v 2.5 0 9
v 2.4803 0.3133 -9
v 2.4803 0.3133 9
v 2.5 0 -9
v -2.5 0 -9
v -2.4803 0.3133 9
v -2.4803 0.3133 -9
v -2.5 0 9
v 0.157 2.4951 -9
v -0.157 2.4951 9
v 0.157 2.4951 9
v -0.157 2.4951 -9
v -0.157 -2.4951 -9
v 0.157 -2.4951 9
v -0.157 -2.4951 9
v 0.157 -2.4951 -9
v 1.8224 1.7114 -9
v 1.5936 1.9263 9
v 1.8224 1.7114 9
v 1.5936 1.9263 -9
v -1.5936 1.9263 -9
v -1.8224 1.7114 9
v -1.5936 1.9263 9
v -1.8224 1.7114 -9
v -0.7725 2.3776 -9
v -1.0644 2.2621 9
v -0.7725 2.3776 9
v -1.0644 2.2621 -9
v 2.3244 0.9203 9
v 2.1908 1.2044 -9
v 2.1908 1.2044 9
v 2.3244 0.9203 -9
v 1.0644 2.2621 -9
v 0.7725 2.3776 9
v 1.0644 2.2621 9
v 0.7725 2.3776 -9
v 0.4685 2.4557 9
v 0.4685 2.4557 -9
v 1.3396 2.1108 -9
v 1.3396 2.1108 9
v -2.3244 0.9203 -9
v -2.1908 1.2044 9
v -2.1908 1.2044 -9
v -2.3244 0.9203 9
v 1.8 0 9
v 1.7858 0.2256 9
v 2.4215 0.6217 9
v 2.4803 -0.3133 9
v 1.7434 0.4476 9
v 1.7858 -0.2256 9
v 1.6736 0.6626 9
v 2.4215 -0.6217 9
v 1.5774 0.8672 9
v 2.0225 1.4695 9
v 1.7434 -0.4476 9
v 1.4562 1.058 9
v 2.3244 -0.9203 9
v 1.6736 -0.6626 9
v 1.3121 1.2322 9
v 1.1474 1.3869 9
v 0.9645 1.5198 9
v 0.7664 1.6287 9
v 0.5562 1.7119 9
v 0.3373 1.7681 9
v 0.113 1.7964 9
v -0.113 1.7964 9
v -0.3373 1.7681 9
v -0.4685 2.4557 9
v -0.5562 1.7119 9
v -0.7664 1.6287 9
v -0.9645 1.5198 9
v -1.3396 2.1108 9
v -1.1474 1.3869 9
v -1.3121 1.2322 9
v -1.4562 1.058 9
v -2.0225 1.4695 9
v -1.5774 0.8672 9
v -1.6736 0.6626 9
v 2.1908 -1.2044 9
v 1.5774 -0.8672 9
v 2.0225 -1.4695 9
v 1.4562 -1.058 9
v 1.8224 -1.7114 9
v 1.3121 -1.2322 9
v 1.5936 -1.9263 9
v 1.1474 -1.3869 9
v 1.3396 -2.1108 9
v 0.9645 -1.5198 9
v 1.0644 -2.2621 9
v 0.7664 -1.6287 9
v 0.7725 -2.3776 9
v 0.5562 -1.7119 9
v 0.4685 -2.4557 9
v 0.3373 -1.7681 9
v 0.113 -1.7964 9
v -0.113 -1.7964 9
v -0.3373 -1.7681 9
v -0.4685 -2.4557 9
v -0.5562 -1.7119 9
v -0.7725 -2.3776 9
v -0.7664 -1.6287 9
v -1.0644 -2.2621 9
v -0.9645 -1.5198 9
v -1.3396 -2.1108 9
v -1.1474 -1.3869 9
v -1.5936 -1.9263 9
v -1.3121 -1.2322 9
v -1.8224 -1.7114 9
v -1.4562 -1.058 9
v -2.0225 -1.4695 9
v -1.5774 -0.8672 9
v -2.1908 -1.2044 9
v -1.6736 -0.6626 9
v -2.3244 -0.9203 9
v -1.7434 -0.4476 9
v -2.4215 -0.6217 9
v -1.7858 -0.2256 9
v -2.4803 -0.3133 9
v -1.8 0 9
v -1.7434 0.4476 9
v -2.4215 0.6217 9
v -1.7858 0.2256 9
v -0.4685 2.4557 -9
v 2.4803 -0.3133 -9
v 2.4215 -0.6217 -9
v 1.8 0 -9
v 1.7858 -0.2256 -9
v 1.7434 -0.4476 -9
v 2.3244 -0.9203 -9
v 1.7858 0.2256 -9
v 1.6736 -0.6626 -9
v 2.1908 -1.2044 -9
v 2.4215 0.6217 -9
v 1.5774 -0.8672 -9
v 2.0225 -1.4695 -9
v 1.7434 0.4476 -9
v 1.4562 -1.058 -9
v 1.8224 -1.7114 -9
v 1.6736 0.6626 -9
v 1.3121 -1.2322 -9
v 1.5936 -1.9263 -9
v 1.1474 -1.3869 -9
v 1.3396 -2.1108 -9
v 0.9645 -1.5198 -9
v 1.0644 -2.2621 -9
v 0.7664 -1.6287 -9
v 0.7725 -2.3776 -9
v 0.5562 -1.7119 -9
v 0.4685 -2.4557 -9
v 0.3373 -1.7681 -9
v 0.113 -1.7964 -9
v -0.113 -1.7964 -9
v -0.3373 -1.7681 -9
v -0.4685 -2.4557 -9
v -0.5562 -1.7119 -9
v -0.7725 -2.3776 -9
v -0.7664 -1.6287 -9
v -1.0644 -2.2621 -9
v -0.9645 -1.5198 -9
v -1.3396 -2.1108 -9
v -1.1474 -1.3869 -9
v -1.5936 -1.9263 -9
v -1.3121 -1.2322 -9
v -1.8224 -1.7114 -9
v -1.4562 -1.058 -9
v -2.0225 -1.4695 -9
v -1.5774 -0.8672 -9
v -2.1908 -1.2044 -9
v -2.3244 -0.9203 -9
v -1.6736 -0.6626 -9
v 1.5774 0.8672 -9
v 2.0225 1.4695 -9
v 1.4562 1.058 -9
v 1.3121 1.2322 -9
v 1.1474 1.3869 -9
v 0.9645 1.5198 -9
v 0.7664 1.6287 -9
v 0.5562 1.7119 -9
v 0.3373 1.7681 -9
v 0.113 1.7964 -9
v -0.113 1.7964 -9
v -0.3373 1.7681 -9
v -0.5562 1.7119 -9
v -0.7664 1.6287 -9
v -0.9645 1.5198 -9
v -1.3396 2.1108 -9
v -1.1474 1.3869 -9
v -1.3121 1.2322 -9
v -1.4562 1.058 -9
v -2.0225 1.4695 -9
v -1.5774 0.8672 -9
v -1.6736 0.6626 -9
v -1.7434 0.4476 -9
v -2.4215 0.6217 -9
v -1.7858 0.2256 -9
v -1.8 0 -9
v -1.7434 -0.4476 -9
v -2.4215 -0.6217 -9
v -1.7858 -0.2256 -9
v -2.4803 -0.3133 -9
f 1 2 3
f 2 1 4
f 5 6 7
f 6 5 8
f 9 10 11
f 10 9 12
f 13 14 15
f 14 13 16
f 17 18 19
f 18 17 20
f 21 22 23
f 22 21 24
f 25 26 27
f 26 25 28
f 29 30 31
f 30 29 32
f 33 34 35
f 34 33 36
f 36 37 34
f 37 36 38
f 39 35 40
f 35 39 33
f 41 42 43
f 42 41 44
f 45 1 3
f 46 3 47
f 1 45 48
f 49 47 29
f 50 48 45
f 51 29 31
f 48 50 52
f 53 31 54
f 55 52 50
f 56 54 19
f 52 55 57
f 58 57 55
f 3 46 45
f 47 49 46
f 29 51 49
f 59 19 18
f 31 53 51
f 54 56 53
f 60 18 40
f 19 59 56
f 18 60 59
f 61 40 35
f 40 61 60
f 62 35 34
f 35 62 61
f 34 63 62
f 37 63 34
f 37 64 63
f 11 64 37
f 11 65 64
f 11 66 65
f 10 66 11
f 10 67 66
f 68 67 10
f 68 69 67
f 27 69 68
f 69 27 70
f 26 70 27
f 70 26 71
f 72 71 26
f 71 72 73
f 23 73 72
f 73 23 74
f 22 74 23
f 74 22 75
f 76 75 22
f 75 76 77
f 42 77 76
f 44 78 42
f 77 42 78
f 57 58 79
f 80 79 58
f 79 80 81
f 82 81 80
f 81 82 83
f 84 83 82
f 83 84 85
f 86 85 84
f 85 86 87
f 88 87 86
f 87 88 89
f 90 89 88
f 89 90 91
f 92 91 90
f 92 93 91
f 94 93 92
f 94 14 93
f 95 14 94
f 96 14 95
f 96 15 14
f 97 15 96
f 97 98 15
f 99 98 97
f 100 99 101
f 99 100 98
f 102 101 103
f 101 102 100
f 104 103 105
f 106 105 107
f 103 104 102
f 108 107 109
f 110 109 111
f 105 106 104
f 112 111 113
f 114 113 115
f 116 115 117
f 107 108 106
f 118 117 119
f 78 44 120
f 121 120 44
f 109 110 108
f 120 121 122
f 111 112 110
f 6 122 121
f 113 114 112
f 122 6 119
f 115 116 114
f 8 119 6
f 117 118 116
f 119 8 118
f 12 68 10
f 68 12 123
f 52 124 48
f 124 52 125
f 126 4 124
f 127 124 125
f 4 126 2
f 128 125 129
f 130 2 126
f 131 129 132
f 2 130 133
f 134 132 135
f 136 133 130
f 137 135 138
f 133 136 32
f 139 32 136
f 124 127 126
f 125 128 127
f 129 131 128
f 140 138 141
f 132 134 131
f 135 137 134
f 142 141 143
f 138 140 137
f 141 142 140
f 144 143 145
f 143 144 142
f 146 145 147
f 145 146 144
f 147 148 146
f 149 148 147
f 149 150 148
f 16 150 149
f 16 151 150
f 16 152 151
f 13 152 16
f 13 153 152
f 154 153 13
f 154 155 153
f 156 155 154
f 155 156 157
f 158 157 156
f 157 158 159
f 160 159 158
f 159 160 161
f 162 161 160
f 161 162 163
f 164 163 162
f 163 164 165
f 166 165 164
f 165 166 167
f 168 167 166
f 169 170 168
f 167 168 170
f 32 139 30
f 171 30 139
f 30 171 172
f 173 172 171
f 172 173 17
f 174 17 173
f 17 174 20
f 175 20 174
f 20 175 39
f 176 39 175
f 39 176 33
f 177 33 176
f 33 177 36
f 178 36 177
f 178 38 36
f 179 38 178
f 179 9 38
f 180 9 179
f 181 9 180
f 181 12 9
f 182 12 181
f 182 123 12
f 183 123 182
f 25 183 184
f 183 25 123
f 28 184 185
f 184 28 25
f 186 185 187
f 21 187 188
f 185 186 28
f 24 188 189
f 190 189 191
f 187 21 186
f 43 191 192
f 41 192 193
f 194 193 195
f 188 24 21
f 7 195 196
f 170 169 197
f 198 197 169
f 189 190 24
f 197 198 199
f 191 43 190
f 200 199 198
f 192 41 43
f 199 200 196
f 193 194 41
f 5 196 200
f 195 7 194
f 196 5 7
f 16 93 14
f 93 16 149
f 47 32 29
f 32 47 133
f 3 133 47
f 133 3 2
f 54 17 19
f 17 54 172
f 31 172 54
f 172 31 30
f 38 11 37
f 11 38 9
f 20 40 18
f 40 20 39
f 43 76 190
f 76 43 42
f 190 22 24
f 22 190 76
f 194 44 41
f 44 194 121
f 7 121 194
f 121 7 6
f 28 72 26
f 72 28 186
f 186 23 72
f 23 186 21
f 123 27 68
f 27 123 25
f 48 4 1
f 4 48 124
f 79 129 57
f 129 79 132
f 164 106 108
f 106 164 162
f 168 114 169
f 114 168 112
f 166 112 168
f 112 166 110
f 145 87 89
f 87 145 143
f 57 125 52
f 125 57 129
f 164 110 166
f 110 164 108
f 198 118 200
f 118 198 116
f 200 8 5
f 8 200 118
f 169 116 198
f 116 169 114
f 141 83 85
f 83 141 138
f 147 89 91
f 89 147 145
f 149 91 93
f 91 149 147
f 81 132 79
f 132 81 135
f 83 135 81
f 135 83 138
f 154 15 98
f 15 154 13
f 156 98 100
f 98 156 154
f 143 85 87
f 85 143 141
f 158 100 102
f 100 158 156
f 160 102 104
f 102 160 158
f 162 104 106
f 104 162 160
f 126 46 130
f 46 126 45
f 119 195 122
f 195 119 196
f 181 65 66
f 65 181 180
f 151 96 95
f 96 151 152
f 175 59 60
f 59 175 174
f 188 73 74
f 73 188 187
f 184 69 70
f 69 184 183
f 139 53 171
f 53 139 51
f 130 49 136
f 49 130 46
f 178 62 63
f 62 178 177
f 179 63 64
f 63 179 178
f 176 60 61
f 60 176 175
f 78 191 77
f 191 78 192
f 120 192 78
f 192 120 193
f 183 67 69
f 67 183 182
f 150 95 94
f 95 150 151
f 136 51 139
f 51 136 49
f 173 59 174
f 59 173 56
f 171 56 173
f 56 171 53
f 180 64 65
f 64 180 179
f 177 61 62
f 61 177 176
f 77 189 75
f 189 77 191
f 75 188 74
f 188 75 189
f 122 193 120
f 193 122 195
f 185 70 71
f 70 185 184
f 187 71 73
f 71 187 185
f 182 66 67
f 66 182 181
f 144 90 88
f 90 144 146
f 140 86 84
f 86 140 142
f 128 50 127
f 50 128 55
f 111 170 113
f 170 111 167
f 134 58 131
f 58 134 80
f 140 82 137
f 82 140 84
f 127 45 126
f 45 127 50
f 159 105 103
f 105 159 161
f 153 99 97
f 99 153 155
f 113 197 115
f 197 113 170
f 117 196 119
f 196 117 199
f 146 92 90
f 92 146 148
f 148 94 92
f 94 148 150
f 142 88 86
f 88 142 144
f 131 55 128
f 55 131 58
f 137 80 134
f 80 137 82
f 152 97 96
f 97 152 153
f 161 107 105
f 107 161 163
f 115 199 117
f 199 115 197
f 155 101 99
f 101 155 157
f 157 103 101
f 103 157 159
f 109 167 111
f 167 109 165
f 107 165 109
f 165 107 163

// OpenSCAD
$fn = 50;


difference() {
	union() {
		translate(v = [0, 0, -9.0000000000]) {
			cylinder(h = 18, r = 2.5000000000);
		}
	}
	union() {
		translate(v = [0, 0, -100.0000000000]) {
			cylinder(h = 200, r = 1.8000000000);
		}
	}
}
